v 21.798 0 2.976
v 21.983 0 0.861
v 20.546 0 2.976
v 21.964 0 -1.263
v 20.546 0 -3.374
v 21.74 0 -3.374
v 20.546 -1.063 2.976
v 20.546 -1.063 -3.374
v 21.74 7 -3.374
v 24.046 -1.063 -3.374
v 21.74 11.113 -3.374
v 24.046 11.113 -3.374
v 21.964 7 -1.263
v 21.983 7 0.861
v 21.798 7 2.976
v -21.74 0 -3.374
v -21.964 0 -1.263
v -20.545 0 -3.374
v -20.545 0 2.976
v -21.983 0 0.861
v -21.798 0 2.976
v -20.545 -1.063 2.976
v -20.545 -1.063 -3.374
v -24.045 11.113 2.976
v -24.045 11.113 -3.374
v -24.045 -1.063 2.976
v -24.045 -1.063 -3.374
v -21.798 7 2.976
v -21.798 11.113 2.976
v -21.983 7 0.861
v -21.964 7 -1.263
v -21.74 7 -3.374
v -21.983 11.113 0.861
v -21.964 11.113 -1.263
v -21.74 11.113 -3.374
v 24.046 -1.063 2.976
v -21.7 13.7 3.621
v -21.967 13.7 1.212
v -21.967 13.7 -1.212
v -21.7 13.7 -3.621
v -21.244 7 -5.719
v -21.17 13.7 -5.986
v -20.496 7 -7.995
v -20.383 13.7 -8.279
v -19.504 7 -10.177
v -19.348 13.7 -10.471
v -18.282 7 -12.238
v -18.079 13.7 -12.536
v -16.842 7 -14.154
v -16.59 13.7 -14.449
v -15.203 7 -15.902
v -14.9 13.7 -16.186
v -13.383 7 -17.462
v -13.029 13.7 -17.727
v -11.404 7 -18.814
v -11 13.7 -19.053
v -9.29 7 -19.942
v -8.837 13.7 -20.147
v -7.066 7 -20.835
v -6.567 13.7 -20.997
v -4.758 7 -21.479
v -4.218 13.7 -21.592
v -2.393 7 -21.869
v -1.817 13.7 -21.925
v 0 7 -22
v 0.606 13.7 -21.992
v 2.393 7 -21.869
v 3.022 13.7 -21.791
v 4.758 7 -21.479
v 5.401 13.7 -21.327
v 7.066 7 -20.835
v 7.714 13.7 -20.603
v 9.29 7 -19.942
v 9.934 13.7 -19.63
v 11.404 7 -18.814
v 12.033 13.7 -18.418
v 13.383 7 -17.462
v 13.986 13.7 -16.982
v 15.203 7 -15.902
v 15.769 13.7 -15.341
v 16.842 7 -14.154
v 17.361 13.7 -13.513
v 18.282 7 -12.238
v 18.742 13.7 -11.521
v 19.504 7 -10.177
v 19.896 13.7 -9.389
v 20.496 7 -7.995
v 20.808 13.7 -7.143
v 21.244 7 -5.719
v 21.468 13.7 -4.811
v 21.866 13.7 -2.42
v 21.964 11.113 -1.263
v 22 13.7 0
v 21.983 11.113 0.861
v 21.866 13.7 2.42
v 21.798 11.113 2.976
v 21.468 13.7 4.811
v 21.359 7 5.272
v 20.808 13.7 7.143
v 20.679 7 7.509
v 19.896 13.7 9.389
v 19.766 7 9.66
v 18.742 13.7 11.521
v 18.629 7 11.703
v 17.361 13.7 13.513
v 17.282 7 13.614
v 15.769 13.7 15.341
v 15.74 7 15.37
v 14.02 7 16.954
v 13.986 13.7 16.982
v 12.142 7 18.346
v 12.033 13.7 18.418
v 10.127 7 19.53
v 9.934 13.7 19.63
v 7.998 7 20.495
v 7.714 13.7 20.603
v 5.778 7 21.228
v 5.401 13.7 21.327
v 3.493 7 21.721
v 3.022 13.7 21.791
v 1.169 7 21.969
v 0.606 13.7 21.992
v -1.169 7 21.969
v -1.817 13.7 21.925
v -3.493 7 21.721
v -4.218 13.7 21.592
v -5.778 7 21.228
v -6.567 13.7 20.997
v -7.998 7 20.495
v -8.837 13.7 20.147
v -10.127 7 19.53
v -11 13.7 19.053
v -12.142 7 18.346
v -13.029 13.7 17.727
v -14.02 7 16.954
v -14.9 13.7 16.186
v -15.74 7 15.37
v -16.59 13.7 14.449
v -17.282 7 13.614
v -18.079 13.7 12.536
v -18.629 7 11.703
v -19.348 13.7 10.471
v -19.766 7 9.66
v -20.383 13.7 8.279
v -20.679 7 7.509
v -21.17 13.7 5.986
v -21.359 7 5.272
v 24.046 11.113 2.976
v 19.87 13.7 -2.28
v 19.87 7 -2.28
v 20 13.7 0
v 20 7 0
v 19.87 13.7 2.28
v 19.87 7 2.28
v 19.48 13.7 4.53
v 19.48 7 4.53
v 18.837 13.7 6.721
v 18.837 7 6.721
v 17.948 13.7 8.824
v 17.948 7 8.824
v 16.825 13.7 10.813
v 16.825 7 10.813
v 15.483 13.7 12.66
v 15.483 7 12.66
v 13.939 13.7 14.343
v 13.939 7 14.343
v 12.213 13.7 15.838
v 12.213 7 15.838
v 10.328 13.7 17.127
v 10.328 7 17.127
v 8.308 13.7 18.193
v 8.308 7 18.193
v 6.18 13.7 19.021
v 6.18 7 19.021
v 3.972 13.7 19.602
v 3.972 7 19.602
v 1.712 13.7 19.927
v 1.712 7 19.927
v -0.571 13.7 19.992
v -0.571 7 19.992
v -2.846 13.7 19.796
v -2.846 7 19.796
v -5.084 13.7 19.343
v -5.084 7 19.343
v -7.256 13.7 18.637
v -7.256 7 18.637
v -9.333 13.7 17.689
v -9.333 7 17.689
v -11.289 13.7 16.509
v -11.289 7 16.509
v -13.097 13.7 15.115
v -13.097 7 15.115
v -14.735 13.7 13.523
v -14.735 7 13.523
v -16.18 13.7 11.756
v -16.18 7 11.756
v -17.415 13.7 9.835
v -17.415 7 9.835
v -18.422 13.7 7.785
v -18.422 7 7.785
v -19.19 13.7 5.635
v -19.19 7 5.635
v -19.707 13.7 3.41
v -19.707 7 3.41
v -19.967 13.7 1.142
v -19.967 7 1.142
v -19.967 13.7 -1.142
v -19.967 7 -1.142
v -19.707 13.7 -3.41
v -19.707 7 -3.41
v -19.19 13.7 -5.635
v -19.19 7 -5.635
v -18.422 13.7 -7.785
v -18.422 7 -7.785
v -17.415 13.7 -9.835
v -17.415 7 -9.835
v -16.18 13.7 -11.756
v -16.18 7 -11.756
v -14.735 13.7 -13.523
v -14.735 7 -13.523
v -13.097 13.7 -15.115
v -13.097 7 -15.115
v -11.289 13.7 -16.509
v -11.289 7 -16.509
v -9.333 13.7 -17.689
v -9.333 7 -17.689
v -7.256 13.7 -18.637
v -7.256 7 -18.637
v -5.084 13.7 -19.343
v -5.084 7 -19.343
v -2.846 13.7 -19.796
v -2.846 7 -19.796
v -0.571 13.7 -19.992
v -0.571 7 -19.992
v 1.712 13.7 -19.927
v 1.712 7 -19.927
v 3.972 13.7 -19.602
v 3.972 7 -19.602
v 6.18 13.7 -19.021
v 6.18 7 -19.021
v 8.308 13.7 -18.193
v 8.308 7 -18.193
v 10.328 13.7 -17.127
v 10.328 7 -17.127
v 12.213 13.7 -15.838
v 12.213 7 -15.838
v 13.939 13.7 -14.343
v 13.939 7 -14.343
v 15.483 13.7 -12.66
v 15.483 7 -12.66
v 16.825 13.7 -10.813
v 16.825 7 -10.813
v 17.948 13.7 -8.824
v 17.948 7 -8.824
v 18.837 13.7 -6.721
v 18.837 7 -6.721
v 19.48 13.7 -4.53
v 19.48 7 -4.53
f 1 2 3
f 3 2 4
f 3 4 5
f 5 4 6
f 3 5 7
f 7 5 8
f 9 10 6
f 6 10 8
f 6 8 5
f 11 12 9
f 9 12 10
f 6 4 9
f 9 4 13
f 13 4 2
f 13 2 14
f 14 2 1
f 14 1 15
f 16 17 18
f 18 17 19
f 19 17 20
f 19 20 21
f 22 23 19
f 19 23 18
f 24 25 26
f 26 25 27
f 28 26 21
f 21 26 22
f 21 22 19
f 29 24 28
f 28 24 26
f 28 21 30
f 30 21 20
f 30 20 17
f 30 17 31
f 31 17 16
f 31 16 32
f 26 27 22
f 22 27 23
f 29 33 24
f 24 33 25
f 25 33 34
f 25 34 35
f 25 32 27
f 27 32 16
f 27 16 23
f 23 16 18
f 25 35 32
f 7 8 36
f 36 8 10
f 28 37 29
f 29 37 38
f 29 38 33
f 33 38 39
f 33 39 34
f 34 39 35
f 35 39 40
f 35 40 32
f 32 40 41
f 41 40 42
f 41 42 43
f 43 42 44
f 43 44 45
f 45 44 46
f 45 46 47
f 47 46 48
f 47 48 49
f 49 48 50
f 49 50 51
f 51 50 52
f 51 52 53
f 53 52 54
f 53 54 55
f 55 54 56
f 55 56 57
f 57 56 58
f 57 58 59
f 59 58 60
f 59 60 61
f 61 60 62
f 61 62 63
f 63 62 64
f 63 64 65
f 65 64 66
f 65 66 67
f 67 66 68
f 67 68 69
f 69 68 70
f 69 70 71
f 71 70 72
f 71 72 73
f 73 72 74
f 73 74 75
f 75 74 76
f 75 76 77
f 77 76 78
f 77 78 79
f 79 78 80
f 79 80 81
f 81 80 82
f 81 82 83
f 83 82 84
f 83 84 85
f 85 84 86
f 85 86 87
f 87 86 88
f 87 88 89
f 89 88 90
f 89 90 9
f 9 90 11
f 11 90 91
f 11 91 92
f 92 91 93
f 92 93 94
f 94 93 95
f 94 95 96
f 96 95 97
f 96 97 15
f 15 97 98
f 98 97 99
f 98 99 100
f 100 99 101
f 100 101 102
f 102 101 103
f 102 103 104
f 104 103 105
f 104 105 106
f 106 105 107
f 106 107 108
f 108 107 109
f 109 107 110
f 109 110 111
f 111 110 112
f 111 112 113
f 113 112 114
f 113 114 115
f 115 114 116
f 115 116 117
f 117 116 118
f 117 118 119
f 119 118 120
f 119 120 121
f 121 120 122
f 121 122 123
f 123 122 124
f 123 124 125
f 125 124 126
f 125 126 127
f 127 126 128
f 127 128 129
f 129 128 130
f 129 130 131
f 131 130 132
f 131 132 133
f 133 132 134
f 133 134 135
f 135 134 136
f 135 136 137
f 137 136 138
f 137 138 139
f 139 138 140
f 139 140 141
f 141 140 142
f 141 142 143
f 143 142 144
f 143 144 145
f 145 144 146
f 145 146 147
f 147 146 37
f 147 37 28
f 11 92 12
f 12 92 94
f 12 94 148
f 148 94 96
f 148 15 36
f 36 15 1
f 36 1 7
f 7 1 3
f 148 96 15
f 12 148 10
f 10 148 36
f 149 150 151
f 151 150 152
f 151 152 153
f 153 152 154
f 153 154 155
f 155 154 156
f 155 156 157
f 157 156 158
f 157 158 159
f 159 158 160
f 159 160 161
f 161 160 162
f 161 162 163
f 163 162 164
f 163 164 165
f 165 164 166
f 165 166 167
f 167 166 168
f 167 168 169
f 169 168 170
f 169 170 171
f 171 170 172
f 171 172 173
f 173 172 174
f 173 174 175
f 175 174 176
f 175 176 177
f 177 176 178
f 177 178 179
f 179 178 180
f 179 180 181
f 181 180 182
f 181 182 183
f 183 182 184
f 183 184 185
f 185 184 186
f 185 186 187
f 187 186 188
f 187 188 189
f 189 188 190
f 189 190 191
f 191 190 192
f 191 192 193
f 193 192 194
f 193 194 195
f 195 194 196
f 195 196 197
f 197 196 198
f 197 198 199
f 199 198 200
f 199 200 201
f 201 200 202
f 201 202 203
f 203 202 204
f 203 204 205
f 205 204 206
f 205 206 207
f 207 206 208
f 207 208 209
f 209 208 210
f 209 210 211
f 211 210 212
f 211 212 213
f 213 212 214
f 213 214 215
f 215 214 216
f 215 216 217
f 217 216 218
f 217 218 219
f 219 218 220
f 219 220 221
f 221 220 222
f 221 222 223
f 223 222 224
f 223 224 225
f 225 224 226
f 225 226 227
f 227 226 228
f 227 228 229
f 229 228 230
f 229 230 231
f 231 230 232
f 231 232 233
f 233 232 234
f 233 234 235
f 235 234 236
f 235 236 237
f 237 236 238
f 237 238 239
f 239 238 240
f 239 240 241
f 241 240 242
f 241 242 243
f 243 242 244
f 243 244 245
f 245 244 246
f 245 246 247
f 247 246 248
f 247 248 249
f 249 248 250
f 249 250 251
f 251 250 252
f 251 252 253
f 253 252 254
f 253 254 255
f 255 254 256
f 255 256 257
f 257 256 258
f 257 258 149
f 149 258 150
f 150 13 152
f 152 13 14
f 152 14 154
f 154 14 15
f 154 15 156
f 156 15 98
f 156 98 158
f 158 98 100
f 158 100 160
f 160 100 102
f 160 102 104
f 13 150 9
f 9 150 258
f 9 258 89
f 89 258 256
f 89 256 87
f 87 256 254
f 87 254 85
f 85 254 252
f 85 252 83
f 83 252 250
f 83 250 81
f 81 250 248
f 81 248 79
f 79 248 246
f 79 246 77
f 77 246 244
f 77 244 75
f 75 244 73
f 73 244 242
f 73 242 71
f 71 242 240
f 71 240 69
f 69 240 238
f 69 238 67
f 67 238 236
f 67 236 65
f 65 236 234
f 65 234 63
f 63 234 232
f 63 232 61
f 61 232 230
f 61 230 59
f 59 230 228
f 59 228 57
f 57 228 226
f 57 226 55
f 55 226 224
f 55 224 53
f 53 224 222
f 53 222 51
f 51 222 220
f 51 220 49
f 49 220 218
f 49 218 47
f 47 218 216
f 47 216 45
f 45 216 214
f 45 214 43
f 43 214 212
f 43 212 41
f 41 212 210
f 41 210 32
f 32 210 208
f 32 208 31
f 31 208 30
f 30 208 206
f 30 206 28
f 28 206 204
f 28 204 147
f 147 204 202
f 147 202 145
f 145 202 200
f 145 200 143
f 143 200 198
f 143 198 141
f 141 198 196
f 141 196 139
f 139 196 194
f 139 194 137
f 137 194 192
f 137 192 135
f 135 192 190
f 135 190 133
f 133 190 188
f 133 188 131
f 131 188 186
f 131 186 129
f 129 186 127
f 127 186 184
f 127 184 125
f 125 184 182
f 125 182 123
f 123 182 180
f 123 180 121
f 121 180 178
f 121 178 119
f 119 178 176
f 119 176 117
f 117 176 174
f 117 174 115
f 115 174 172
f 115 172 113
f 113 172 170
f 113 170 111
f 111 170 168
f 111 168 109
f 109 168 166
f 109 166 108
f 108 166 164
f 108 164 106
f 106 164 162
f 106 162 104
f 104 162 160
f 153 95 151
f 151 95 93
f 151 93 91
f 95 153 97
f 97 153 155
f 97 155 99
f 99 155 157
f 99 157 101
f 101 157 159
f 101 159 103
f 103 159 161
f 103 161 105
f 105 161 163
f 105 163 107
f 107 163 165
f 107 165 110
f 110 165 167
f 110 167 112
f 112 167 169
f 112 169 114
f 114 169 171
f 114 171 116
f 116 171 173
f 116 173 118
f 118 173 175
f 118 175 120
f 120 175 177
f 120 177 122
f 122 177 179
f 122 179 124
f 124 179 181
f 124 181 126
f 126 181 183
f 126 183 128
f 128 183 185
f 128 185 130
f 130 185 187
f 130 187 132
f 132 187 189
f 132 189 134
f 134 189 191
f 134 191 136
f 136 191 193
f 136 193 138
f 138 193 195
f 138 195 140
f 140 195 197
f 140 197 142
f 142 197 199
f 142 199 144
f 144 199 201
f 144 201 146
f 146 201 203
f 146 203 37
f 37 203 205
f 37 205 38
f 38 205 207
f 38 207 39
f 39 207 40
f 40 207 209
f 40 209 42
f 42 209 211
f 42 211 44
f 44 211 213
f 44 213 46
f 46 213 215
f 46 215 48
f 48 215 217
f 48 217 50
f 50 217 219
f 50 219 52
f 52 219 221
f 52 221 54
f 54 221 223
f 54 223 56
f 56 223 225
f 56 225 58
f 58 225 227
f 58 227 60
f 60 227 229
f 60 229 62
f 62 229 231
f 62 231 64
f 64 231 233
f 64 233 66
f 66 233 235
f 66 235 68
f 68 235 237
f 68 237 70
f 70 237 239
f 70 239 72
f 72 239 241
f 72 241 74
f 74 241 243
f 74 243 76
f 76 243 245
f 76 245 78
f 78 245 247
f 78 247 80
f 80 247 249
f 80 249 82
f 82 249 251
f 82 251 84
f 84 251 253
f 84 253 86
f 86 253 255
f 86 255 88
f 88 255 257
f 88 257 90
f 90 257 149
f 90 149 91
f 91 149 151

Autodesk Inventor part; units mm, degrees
ref_plane "YZ Plane" through (0, 0, 0) normal (1, 0, 0) x (0, 1, 0)
ref_plane "XZ Plane" through (0, 0, 0) normal (0, 1, 0) x (-1, 0, 0)
ref_plane "XY Plane" through (0, 0, 0) normal (0, 0, 1) x (1, 0, 0)
ref_plane "Work Plane11" through (0, 7, 0) normal (0, 1, 0) x (1, 0, 0)
sketch "Sketch16" plane through (0, 7, 0) normal (0, 1, 0) x (1, 0, 0)
  circle A0 centre (0, 0) radius 22
  circle A1 centre (0, 0) radius 20 projected
  circle A2 centre (0, 0) radius 18.4
  dimension "d44" = 36.8
extrude "Extrusion13" add sketch "Sketch16" along normal blind 6.7 contours A0
ref_plane "Work Plane3" through (24.0456, 0, 22.026) normal (1, 0, 0) x (0, 0, -1)
sketch "Sketch19" plane through (24.0456, 0, 22.026) normal (1, 0, 0) x (0, 0, -1)
  line L0 (19.05, 11.1125) -> (25.4, 11.1125)
  line L1 (25.4, 11.1125) -> (25.4, 7.9375)
  line L2 (25.4, 7.9375) -> (19.05, 7.9375)
  line L3 (19.05, 7.9375) -> (19.05, 11.1125)
  point P0 (22.026, 0)
extrude "Extrusion15" add sketch "Sketch19" against normal blind 3
sketch "Sketch20" plane through (24.0456, 7.9375, -3.374) normal (0, -1, 0) x (1, 0, 0)
  line L0 (0, 6.35) -> (0, 0) projected
  line L1 (0, 6.35) -> (0, 0)
  line L2 (0, 0) -> (-2.3058, 0) projected
  line L3 (0, 0) -> (-2.3058, 0)
  arc A0 (-38.8494, -12.9001) -> (-38.8494, 19.6481) centre (-24.0456, 3.374) ccw projected
  arc A1 (-2.3058, 0) -> (-2.3058, 6.7481) centre (-24.0456, 3.374) ccw
  line L4 (0, 6.35) -> (-2.2478, 6.35) projected
  line L5 (0, 6.35) -> (-2.2478, 6.35)
  point P0 (-3, 0)
  point P1 (-3, 6.35)
extrude "Extrusion16" add sketch "Sketch20" along normal blind 9
sketch "Sketch21" plane through (24.0456, 0, 22.026) normal (1, 0, 0) x (0, 0, -1)
  line L0 (25.4, 0) -> (19.05, 0)
  line L1 (19.05, 11.1125) -> (19.05, -1.0625) projected
  line L2 (19.05, 0) -> (19.05, -1.0625)
  line L3 (25.4, 11.1125) -> (25.4, -1.0625) projected
  line L4 (19.05, -1.0625) -> (25.4, -1.0625)
  line L5 (25.4, -1.0625) -> (25.4, 0)
  point P0 (22.026, 0)
ref_plane "Work Plane4" through (-24.0451, 0, 16.0514) normal (-1, 0, 0) x (0, 0, 1)
sketch "Sketch23" plane through (-24.0451, 0, 16.0514) normal (-1, 0, 0) x (0, 0, 1)
  line L0 (-19.4254, 11.1125) -> (-19.4254, 0) projected
  line L1 (-13.0754, 11.1125) -> (-13.0754, -1.0625) projected
  line L2 (-19.4254, 11.1125) -> (-13.0754, 11.1125)
  line L3 (-13.0754, 11.1125) -> (-13.0754, 7.9375)
  line L4 (-13.0754, 7.9375) -> (-19.4254, 7.9375)
  line L5 (-19.4254, 7.9375) -> (-19.4254, 11.1125)
  point P0 (-16.0514, 0)
extrude "Extrusion17" add sketch "Sketch23" against normal blind 3
sketch "Sketch24" plane through (-24.0451, 7.9375, -3.374) normal (0, -1, 0) x (1, 0, 0)
  arc A0 (2.2473, 6.35) -> (2.3053, 0) centre (24.0451, 3.374) ccw projected
  line L0 (2.3053, 0) -> (0, 0)
  line L1 (0, 0) -> (0, 6.35) projected
  line L2 (0, 0) -> (0, 6.35)
  line L3 (0, 6.35) -> (2.2473, 6.35) projected
  line L4 (0, 6.35) -> (2.2473, 6.35)
  arc A1 (2.2473, 6.35) -> (2.3053, 0) centre (24.0451, 3.374) ccw
  point P0 (3, 6.35)
extrude "Extrusion18" add sketch "Sketch24" along normal blind 9
sketch "Sketch25" plane through (-24.0451, 0, 16.0514) normal (-1, 0, 0) x (0, 0, 1)
  line L0 (-19.4254, 11.1125) -> (-19.4254, -1.0625) projected
  line L1 (-13.0754, 0) -> (5.9486, 0) projected
  line L2 (-19.4254, -1.0625) -> (-13.0754, -1.0625)
  line L3 (-13.0754, -1.0625) -> (-13.0754, 0)
  line L4 (-13.0754, 0) -> (-19.4254, 0)
  line L5 (-19.4254, 0) -> (-19.4254, -1.0625)
  point P0 (-16.0514, 0)
  point P1 (0.2227, 0)
extrude "Extrusion19" add sketch "Sketch25" against normal blind 3.5
sketch "Sketch26" plane through (24.0456, 0, 22.026) normal (1, 0, 0) x (0, 0, -1)
  line L0 (25.4, 11.1125) -> (25.4, 0) projected
  line L1 (19.05, -1.0625) -> (25.4, -1.0625) projected
  line L2 (25.4, 0) -> (19.05, 0)
  line L3 (19.05, 0) -> (19.05, -1.0625)
  line L4 (19.05, -1.0625) -> (25.4, -1.0625)
  line L5 (25.4, -1.0625) -> (25.4, 0)
  point P0 (22.026, 0)
extrude "Extrusion20" add sketch "Sketch26" against normal blind 3.5
properties part number "watchBodyOneTop"
